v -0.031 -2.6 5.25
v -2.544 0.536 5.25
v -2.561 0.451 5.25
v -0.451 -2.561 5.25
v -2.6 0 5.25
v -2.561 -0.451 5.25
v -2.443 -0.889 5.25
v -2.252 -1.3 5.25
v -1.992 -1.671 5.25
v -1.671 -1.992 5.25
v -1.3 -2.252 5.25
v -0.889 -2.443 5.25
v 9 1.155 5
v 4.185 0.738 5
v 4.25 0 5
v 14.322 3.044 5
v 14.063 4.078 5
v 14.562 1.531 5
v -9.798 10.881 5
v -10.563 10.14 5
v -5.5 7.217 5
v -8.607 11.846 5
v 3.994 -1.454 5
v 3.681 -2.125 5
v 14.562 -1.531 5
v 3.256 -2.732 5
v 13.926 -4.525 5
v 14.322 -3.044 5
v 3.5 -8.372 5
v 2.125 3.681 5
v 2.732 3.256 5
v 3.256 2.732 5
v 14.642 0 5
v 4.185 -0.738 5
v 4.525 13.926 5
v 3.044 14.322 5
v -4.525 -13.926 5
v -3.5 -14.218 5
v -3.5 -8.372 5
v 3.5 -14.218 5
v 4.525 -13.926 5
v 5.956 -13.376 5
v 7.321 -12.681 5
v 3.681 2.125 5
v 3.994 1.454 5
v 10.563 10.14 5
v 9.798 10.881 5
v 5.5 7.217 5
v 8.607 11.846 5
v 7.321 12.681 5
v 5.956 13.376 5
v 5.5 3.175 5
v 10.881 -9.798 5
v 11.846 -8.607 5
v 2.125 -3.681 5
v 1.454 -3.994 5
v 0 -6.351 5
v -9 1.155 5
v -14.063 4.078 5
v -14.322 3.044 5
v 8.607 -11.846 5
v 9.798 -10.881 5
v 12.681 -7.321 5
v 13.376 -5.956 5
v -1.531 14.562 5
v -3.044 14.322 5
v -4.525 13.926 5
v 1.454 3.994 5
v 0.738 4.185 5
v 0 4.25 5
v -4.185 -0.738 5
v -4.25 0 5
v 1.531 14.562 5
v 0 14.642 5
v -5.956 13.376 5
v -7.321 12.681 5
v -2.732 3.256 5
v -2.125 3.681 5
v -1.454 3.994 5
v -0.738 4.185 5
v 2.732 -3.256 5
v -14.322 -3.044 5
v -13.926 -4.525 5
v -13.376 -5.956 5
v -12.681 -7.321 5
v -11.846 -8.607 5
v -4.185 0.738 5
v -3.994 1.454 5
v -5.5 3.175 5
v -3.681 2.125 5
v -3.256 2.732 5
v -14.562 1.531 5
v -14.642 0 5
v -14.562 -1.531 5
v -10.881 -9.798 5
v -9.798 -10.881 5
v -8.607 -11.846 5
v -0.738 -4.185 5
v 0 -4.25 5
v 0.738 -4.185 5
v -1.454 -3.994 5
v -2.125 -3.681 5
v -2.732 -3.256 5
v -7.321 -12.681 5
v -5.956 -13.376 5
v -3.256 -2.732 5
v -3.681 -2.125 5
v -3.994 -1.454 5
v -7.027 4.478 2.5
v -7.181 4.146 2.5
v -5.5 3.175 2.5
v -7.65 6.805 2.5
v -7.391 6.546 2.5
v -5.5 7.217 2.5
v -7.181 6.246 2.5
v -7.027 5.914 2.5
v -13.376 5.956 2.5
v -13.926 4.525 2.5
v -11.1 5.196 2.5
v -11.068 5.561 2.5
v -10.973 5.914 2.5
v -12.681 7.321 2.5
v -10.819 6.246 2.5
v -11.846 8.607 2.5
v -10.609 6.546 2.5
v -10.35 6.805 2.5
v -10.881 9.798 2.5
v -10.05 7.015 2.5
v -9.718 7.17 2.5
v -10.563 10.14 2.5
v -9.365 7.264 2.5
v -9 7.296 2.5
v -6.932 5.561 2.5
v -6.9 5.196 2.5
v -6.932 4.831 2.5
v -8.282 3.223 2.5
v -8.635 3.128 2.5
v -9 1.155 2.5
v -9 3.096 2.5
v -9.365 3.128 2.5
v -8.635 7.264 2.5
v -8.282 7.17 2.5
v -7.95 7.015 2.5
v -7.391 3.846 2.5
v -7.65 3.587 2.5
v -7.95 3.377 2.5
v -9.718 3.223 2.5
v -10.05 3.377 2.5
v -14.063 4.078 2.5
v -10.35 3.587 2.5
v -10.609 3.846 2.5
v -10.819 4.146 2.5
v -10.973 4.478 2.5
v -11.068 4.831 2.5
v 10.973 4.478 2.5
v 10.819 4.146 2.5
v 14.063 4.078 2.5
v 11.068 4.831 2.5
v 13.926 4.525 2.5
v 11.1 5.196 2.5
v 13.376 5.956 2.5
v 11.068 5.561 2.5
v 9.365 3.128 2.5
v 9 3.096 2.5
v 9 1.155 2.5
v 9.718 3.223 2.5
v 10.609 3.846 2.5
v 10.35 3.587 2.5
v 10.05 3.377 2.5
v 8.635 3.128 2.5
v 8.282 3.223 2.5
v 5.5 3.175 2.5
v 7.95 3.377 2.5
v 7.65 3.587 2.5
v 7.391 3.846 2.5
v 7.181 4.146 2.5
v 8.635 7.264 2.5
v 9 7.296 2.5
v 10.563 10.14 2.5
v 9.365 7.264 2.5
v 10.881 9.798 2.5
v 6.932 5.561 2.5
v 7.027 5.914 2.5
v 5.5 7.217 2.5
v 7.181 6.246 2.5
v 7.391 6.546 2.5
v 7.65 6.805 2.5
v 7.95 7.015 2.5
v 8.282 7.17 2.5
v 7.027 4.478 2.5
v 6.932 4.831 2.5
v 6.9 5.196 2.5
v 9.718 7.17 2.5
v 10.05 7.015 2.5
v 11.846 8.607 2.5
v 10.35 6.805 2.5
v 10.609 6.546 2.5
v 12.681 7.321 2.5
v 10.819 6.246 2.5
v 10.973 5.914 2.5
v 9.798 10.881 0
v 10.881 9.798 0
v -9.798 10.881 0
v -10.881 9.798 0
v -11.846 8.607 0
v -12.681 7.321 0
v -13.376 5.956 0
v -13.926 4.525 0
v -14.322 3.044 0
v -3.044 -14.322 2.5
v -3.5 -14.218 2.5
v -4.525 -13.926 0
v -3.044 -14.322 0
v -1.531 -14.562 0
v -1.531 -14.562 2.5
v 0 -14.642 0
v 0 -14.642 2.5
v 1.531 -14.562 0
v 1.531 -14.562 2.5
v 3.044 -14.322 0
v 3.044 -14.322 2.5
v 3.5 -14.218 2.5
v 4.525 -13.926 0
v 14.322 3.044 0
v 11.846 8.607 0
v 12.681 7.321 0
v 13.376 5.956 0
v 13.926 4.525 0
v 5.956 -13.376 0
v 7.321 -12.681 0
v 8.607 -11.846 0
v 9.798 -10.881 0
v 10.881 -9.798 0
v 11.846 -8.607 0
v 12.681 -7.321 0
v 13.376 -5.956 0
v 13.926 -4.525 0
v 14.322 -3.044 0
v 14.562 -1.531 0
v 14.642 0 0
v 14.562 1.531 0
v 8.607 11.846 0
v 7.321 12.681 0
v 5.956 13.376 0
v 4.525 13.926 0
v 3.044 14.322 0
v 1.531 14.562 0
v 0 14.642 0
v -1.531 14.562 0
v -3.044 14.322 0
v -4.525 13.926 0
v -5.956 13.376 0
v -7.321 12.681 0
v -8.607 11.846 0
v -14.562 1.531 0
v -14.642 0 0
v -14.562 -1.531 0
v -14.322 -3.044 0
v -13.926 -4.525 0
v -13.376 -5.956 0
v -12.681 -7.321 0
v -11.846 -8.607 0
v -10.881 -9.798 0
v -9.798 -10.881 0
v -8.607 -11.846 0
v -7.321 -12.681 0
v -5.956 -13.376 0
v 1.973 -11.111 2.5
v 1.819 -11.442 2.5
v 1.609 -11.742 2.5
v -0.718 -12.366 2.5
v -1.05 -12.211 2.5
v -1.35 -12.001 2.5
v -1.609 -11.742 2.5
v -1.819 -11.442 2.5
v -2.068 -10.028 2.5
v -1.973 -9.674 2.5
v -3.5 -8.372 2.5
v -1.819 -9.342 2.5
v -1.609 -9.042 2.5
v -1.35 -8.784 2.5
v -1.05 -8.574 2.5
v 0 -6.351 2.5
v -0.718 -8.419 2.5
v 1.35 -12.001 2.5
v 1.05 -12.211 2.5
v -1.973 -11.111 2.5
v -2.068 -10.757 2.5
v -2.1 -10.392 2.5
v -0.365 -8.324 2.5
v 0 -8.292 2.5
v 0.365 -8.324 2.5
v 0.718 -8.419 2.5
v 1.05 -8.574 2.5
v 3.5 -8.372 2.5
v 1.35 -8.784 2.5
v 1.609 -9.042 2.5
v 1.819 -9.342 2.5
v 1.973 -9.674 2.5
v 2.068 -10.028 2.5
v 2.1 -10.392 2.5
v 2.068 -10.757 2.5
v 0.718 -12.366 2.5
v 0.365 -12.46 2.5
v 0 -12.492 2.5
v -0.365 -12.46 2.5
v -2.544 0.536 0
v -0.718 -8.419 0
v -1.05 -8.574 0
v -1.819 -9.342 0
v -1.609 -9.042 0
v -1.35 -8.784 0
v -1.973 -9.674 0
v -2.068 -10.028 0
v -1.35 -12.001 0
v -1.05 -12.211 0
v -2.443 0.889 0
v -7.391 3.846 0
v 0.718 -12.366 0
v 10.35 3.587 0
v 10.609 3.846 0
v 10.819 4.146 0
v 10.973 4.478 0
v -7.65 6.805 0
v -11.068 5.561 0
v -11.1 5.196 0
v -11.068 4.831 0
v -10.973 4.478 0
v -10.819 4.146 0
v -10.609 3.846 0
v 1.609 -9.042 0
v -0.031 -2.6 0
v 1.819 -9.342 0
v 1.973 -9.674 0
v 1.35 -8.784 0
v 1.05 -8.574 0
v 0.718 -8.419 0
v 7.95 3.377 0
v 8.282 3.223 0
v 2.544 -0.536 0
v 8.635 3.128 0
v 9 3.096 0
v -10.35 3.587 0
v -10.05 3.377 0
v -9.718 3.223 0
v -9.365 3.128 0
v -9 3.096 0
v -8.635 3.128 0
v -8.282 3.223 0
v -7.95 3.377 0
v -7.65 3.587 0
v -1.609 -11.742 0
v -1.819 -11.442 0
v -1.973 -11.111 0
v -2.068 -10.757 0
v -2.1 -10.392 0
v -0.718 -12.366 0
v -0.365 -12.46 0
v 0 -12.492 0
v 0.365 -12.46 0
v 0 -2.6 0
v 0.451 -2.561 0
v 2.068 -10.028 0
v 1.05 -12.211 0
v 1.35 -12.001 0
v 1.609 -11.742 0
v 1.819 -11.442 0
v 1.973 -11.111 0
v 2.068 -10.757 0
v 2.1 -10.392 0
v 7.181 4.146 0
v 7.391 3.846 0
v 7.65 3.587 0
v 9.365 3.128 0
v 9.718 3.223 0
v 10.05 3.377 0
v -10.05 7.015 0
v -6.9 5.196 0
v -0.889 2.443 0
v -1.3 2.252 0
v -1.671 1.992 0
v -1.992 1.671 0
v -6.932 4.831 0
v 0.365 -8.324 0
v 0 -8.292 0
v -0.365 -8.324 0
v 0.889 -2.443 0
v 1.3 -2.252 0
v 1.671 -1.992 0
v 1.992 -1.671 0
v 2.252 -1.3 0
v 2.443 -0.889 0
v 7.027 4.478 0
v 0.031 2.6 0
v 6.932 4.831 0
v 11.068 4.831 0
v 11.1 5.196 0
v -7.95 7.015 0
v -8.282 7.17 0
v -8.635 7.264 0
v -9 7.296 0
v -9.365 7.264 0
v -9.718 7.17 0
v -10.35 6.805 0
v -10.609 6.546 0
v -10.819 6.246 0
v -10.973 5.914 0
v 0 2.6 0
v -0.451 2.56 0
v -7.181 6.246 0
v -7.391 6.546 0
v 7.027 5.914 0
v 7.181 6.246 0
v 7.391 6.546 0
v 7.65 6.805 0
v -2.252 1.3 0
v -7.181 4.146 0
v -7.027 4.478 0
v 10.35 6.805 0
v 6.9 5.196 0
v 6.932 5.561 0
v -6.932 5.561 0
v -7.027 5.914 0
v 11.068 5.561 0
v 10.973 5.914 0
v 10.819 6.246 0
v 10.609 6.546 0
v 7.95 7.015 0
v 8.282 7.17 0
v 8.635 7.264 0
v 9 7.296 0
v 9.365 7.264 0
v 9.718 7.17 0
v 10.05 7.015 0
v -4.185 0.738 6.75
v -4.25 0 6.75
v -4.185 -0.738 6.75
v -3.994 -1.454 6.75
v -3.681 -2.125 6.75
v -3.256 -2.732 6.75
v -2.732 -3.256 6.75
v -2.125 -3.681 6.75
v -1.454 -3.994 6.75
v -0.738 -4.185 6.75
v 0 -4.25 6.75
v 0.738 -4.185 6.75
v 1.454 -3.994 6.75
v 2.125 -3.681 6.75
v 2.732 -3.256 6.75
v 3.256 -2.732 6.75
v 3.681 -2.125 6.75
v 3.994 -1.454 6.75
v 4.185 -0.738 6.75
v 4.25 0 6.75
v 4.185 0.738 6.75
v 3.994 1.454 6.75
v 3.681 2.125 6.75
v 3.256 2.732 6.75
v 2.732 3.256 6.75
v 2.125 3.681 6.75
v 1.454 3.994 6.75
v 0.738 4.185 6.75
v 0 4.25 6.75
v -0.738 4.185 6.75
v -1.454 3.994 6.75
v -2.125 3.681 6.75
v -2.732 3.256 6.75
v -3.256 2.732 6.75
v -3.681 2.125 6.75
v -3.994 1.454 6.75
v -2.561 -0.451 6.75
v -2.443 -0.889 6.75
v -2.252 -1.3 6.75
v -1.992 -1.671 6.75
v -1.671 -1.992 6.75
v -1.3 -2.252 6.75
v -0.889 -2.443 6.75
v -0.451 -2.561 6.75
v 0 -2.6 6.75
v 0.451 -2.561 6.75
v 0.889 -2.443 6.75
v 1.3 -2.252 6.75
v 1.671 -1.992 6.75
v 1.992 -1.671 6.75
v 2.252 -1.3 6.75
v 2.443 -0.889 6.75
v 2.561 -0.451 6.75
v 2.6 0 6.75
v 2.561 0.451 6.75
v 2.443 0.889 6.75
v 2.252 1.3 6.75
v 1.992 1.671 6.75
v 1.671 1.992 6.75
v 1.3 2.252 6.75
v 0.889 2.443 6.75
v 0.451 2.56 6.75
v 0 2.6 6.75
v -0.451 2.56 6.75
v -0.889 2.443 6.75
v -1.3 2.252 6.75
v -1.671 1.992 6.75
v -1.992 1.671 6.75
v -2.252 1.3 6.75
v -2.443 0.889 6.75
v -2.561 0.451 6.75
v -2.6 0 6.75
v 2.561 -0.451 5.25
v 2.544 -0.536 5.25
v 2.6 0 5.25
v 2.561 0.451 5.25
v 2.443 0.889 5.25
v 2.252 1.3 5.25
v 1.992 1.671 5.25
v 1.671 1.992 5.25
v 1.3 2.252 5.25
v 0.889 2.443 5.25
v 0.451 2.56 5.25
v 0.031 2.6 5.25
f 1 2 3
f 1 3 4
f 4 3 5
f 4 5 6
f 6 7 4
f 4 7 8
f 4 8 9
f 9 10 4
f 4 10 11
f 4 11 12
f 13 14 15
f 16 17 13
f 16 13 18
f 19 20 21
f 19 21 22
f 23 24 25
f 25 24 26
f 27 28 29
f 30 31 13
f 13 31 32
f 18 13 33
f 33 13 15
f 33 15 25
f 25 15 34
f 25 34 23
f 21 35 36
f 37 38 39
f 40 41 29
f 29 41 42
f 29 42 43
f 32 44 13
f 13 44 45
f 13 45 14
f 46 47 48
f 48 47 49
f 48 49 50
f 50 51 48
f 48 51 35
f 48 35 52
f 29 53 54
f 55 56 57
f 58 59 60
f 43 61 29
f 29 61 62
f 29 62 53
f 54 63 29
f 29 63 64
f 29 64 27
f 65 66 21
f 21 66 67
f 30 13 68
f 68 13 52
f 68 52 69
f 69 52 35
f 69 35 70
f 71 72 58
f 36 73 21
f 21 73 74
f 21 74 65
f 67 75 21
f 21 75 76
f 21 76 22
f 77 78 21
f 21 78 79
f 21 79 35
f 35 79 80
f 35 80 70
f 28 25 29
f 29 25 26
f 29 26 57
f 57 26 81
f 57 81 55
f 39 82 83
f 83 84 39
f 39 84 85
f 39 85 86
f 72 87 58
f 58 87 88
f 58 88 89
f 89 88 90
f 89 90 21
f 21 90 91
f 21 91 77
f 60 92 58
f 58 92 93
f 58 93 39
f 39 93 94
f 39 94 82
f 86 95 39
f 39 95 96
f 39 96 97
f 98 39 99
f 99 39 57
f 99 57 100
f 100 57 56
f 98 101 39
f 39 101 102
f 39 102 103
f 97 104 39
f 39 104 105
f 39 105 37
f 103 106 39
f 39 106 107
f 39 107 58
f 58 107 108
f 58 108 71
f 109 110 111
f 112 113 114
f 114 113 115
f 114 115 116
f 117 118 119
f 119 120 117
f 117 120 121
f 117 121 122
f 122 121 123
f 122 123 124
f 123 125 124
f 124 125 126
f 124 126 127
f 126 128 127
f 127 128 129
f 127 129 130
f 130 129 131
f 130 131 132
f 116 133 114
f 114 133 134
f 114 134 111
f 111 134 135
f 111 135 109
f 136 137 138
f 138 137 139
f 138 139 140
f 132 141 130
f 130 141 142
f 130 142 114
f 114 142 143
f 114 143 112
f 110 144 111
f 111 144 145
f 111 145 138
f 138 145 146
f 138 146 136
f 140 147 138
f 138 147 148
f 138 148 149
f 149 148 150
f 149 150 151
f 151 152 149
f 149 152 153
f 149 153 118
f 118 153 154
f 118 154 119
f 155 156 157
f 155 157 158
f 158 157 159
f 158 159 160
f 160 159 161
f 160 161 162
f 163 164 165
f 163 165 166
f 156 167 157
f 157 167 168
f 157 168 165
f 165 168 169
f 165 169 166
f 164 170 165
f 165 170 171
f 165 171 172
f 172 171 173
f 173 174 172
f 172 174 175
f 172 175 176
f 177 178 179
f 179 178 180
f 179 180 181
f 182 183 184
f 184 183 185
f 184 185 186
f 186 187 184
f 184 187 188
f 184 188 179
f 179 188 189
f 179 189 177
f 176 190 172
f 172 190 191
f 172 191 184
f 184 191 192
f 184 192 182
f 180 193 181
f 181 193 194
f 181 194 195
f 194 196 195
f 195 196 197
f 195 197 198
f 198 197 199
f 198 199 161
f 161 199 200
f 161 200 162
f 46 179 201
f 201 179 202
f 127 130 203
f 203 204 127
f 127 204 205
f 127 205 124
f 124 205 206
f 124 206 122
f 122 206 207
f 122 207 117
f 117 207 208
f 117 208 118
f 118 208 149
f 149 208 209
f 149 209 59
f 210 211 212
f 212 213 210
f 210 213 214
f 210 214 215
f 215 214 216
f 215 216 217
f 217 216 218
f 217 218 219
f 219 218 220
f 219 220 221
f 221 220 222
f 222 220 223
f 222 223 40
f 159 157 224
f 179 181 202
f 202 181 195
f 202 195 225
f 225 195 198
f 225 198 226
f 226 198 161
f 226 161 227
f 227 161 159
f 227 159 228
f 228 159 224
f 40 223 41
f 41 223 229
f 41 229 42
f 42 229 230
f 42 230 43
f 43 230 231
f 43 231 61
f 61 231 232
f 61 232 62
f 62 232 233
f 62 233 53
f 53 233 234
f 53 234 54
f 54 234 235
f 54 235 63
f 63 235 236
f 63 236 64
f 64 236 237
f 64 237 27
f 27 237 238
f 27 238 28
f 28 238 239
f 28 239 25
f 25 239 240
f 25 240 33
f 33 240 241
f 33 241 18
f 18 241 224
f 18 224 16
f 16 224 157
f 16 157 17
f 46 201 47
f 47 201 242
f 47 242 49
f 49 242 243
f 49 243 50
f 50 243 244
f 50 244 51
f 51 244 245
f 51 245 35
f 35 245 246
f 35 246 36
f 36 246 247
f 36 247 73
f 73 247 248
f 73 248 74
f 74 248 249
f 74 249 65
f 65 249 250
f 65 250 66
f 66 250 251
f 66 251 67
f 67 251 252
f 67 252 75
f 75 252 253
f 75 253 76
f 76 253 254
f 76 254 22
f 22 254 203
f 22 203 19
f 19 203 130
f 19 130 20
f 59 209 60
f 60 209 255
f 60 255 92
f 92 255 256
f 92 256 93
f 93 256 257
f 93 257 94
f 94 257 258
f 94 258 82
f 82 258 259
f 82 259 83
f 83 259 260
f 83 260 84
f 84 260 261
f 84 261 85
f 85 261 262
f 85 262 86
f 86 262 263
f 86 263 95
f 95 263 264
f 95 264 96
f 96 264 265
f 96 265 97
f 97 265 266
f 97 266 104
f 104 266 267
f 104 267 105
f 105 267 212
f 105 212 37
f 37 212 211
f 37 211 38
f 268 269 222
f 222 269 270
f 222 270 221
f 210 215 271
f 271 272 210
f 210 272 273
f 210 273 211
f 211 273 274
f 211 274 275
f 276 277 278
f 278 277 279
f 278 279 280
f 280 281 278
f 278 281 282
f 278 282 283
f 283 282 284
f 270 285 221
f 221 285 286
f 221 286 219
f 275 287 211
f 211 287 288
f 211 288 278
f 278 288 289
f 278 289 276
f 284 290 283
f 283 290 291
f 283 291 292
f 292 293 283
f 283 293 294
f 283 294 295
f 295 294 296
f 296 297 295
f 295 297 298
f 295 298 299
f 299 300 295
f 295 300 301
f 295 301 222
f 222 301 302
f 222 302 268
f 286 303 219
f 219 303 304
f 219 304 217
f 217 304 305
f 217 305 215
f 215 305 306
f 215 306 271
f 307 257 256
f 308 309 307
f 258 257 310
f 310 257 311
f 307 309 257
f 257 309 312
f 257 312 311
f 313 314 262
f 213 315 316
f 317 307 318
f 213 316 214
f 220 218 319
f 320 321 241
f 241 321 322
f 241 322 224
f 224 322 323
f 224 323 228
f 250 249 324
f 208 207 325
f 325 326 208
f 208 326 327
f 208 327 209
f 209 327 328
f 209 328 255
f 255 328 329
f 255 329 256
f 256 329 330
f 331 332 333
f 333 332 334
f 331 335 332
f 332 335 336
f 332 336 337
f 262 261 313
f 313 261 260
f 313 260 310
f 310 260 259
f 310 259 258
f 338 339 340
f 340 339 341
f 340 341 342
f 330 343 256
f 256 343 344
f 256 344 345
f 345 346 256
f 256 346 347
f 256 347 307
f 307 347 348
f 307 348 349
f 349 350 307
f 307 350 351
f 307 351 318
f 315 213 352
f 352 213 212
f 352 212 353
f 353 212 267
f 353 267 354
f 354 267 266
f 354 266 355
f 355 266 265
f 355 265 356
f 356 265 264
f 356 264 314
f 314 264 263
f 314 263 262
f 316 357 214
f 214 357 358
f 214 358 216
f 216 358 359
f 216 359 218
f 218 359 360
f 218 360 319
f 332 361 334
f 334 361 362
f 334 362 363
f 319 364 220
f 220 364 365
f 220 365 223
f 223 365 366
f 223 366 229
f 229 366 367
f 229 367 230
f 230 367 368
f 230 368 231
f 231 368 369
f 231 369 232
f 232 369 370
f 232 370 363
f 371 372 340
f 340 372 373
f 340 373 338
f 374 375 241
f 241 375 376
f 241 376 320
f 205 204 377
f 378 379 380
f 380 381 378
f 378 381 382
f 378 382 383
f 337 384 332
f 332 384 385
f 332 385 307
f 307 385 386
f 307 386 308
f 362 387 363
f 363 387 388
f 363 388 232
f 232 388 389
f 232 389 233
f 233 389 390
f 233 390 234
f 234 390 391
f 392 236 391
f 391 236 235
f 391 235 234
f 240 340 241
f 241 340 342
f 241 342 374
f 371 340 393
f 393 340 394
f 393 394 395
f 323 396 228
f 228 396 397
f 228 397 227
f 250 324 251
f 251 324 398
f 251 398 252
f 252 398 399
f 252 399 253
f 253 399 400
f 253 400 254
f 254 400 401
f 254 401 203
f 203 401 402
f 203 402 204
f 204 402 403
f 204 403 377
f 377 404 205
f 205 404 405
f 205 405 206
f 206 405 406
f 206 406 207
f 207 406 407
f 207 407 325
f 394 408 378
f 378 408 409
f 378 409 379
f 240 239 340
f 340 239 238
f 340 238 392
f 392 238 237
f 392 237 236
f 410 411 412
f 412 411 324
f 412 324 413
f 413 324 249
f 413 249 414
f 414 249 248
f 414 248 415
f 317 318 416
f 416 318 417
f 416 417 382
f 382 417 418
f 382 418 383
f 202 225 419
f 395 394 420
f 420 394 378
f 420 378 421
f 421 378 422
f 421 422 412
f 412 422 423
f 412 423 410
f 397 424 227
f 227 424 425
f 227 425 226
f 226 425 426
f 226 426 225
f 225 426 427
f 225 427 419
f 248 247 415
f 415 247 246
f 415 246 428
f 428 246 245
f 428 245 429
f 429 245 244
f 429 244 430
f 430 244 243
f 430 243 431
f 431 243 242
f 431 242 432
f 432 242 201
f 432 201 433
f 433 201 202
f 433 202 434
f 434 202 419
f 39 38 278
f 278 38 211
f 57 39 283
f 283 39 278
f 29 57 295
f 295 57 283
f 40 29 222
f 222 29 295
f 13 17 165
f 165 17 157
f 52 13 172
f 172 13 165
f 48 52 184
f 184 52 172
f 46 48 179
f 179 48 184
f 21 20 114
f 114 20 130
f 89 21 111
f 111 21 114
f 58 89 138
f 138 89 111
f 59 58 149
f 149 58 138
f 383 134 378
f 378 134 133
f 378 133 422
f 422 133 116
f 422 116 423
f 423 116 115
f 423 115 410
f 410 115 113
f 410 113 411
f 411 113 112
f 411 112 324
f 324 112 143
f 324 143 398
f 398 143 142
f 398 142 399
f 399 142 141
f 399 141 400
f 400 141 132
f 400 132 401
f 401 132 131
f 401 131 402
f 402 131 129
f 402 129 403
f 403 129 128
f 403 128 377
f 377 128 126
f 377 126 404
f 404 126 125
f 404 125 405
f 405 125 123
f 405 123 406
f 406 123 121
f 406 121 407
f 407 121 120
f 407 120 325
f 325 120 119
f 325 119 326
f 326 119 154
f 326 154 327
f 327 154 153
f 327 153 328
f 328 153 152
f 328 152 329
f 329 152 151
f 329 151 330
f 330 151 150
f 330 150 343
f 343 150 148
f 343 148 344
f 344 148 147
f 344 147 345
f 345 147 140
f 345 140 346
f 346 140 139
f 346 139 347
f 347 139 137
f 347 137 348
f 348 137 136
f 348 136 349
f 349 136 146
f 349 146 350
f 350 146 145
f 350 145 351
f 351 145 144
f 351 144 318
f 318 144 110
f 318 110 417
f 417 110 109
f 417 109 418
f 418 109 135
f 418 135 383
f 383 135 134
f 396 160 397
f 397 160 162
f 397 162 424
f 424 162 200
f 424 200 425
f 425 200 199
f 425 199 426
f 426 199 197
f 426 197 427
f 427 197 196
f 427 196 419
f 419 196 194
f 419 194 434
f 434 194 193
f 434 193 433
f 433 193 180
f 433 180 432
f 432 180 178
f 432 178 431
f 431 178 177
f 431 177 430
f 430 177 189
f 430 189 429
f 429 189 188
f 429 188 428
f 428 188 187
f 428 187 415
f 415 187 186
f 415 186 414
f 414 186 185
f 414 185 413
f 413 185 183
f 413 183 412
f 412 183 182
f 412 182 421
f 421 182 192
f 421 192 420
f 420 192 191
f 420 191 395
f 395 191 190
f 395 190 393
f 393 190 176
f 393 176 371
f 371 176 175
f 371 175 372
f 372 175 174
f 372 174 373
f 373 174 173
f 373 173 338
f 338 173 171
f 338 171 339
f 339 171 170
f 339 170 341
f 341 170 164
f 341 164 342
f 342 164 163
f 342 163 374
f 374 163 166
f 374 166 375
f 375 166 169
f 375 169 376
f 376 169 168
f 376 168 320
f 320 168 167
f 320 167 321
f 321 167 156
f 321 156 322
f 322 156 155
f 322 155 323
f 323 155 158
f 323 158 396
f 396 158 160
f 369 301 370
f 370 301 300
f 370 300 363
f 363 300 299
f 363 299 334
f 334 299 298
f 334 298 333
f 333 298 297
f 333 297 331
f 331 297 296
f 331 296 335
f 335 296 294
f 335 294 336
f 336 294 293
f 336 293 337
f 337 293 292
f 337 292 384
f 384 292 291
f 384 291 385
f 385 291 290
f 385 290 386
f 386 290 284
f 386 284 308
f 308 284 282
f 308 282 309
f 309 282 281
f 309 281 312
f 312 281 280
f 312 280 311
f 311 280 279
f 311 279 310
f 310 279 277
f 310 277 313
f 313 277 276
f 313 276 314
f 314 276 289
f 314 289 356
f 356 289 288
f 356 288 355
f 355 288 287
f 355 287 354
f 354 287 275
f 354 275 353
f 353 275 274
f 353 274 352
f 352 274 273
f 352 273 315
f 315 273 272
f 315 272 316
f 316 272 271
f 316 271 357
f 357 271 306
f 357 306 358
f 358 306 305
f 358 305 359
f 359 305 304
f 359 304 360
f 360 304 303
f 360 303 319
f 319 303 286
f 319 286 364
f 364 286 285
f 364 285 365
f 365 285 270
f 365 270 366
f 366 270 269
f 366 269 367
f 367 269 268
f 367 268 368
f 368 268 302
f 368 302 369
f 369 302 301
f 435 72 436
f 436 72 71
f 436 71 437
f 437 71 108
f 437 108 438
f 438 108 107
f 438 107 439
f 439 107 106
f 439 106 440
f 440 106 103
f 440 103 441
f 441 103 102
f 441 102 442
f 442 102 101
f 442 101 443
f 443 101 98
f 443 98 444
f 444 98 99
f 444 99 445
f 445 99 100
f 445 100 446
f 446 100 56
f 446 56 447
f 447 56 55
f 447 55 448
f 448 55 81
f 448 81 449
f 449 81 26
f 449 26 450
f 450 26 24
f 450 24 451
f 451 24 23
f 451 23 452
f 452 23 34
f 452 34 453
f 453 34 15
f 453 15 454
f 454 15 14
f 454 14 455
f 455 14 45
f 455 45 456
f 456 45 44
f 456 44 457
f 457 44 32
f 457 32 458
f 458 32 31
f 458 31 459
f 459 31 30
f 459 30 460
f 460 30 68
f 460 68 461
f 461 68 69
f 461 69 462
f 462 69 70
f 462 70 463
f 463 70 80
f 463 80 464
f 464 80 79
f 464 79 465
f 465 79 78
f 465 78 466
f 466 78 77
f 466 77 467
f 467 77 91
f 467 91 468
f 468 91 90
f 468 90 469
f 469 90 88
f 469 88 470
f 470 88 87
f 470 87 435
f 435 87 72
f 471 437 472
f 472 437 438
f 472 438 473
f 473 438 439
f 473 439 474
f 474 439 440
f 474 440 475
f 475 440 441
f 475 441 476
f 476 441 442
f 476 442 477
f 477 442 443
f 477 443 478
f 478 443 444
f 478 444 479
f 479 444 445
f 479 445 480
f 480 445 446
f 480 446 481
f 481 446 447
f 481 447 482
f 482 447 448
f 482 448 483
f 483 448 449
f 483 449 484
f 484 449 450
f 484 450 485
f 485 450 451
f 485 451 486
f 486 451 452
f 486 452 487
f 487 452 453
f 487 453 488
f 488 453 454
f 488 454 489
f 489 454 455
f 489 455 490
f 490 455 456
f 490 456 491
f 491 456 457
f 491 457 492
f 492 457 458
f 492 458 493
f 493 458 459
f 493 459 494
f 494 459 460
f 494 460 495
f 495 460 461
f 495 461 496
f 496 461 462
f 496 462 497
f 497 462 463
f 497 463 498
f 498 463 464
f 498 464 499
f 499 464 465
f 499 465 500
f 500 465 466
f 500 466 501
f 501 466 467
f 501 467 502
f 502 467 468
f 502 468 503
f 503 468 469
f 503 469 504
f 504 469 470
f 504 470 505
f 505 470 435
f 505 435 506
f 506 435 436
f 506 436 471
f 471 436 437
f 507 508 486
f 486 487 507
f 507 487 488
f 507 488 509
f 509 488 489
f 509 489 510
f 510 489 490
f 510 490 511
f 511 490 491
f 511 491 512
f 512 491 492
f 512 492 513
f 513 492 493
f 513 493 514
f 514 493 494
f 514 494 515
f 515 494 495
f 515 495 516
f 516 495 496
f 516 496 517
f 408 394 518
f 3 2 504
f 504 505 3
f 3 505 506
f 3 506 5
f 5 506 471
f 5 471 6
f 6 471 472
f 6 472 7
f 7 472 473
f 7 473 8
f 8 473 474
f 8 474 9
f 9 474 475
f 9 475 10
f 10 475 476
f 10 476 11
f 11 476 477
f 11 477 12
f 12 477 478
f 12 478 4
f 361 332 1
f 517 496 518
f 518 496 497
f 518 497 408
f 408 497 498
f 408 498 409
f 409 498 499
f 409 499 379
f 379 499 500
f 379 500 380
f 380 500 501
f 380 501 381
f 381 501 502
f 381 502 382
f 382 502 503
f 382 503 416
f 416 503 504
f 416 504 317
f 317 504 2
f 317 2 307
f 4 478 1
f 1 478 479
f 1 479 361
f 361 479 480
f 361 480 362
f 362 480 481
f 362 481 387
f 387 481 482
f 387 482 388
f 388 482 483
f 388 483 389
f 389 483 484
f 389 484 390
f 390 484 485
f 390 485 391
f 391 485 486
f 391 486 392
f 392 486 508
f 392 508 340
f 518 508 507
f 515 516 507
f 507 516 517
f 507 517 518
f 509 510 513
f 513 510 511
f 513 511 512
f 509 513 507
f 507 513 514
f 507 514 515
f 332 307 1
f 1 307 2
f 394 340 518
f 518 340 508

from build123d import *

# Parameters (mm, degrees)
SKETCH1_R           = 14.642304845
BOSS_EXTRUDE1_DEPTH = 2.5
BOSS_EXTRUDE2_DEPTH = 2.5
CUT_EXTRUDE1_REACH  = 22.858
SKETCH3_R           = 2.1
SKETCH4_R           = 4.25
BOSS_EXTRUDE3_DEPTH = 1.75
SKETCH5_R           = 2.6
CUT_EXTRUDE2_DEPTH  = 1.5
CUT_EXTRUDE3_DEPTH  = 22.779730999


with BuildPart() as part:
    # Sketch1 → Boss-Extrude1 (new body)
    with BuildSketch(Plane.XY):
        Circle(SKETCH1_R)
    extrude(amount=BOSS_EXTRUDE1_DEPTH)

    # Sketch2 → Boss-Extrude2 (add)
    with BuildSketch(Plane.XY.offset(2.5)):
        with BuildLine():
            Line((5.5, 7.216878365), (10.563014188, 10.140010969))
            ThreePointArc((10.563014188, 10.140010969), (10.103038739, 10.598381925), (9.623192391, 11.035907729))
            ThreePointArc((9.623192391, 11.035907729), (-0.649210292, 14.627905427), (-10.563014188, 10.140010969))
            Line((-10.563014188, 10.140010969), (-5.5, 7.216878365))
            Line((-5.5, 7.216878365), (-5.5, 3.175426481))
            Line((-5.5, 3.175426481), (-9, 1.154700538))
            Line((-9, 1.154700538), (-14.063014188, 4.077833143))
            ThreePointArc((-14.063014188, 4.077833143), (-12.680607966, -7.321152423), (-3.5, -14.217844112))
            Line((-3.5, -14.217844112), (-3.5, -8.371578903))
            Line((-3.5, -8.371578903), (0, -6.350852961))
            Line((0, -6.350852961), (3.5, -8.371578903))
            Line((3.5, -8.371578903), (3.5, -14.217844112))
            ThreePointArc((3.5, -14.217844112), (12.680607966, -7.321152423), (14.063014188, 4.077833143))
            Line((14.063014188, 4.077833143), (9, 1.154700538))
            Line((9, 1.154700538), (5.5, 3.175426481))
            Line((5.5, 3.175426481), (5.5, 7.216878365))
        make_face()
    extrude(amount=BOSS_EXTRUDE2_DEPTH)

    # Sketch3 → Cut-Extrude1 (cut, up to next)
    with BuildSketch(Plane.XY.offset(2.5), mode=Mode.PRIVATE) as cut_extrude1_sk1:
        with Locations((-9, 5.196152423)):
            Circle(SKETCH3_R)
    cut_extrude1_tool1 = extrude(cut_extrude1_sk1.sketch, amount=-CUT_EXTRUDE1_REACH, mode=Mode.PRIVATE) & part.part
    # Sketch3 → Cut-Extrude1 (cut, up to next)
    with BuildSketch(Plane.XY.offset(2.5), mode=Mode.PRIVATE) as cut_extrude1_sk2:
        with Locations((9, 5.196152423)):
            Circle(SKETCH3_R)
    cut_extrude1_tool2 = extrude(cut_extrude1_sk2.sketch, amount=-CUT_EXTRUDE1_REACH, mode=Mode.PRIVATE) & part.part
    # Sketch3 → Cut-Extrude1 (cut, up to next)
    with BuildSketch(Plane.XY.offset(2.5), mode=Mode.PRIVATE) as cut_extrude1_sk3:
        with Locations((0, -10.392304845)):
            Circle(SKETCH3_R)
    cut_extrude1_tool3 = extrude(cut_extrude1_sk3.sketch, amount=-CUT_EXTRUDE1_REACH, mode=Mode.PRIVATE) & part.part
    add(cut_extrude1_tool1.solids().sort_by_distance((-9, 5.196152, 2.5))[0], mode=Mode.SUBTRACT)
    add(cut_extrude1_tool2.solids().sort_by_distance((9, 5.196152, 2.5))[0], mode=Mode.SUBTRACT)
    add(cut_extrude1_tool3.solids().sort_by_distance((0, -10.392305, 2.5))[0], mode=Mode.SUBTRACT)

    # Sketch4 → Boss-Extrude3 (add)
    with BuildSketch(Plane.XY.offset(5)):
        with Locations(Location((0, 0, 0), (0, 0, 180))):
            Circle(SKETCH4_R)
    extrude(amount=BOSS_EXTRUDE3_DEPTH)

    # Sketch5 → Cut-Extrude2 (cut)
    with BuildSketch(Plane.XY.offset(6.75)):
        Circle(SKETCH5_R)
    extrude(amount=-CUT_EXTRUDE2_DEPTH, mode=Mode.SUBTRACT)

    # Sketch6 → Cut-Extrude3 (cut, through all)
    with BuildSketch(Plane.XY.offset(6.75)):
        with BuildLine():
            Line((2.544199592, -0.535769015), (0.030619782, 2.599819692))
            ThreePointArc((0.030619782, 2.599819692), (-1.626221745, 2.028645567), (-2.544199592, 0.535769015))
            Line((-2.544199592, 0.535769015), (-0.030619782, -2.599819692))
            ThreePointArc((-0.030619782, -2.599819692), (1.626221745, -2.028645567), (2.544199592, -0.535769015))
        make_face()
    extrude(amount=-CUT_EXTRUDE3_DEPTH, mode=Mode.SUBTRACT)


solid = part.part
